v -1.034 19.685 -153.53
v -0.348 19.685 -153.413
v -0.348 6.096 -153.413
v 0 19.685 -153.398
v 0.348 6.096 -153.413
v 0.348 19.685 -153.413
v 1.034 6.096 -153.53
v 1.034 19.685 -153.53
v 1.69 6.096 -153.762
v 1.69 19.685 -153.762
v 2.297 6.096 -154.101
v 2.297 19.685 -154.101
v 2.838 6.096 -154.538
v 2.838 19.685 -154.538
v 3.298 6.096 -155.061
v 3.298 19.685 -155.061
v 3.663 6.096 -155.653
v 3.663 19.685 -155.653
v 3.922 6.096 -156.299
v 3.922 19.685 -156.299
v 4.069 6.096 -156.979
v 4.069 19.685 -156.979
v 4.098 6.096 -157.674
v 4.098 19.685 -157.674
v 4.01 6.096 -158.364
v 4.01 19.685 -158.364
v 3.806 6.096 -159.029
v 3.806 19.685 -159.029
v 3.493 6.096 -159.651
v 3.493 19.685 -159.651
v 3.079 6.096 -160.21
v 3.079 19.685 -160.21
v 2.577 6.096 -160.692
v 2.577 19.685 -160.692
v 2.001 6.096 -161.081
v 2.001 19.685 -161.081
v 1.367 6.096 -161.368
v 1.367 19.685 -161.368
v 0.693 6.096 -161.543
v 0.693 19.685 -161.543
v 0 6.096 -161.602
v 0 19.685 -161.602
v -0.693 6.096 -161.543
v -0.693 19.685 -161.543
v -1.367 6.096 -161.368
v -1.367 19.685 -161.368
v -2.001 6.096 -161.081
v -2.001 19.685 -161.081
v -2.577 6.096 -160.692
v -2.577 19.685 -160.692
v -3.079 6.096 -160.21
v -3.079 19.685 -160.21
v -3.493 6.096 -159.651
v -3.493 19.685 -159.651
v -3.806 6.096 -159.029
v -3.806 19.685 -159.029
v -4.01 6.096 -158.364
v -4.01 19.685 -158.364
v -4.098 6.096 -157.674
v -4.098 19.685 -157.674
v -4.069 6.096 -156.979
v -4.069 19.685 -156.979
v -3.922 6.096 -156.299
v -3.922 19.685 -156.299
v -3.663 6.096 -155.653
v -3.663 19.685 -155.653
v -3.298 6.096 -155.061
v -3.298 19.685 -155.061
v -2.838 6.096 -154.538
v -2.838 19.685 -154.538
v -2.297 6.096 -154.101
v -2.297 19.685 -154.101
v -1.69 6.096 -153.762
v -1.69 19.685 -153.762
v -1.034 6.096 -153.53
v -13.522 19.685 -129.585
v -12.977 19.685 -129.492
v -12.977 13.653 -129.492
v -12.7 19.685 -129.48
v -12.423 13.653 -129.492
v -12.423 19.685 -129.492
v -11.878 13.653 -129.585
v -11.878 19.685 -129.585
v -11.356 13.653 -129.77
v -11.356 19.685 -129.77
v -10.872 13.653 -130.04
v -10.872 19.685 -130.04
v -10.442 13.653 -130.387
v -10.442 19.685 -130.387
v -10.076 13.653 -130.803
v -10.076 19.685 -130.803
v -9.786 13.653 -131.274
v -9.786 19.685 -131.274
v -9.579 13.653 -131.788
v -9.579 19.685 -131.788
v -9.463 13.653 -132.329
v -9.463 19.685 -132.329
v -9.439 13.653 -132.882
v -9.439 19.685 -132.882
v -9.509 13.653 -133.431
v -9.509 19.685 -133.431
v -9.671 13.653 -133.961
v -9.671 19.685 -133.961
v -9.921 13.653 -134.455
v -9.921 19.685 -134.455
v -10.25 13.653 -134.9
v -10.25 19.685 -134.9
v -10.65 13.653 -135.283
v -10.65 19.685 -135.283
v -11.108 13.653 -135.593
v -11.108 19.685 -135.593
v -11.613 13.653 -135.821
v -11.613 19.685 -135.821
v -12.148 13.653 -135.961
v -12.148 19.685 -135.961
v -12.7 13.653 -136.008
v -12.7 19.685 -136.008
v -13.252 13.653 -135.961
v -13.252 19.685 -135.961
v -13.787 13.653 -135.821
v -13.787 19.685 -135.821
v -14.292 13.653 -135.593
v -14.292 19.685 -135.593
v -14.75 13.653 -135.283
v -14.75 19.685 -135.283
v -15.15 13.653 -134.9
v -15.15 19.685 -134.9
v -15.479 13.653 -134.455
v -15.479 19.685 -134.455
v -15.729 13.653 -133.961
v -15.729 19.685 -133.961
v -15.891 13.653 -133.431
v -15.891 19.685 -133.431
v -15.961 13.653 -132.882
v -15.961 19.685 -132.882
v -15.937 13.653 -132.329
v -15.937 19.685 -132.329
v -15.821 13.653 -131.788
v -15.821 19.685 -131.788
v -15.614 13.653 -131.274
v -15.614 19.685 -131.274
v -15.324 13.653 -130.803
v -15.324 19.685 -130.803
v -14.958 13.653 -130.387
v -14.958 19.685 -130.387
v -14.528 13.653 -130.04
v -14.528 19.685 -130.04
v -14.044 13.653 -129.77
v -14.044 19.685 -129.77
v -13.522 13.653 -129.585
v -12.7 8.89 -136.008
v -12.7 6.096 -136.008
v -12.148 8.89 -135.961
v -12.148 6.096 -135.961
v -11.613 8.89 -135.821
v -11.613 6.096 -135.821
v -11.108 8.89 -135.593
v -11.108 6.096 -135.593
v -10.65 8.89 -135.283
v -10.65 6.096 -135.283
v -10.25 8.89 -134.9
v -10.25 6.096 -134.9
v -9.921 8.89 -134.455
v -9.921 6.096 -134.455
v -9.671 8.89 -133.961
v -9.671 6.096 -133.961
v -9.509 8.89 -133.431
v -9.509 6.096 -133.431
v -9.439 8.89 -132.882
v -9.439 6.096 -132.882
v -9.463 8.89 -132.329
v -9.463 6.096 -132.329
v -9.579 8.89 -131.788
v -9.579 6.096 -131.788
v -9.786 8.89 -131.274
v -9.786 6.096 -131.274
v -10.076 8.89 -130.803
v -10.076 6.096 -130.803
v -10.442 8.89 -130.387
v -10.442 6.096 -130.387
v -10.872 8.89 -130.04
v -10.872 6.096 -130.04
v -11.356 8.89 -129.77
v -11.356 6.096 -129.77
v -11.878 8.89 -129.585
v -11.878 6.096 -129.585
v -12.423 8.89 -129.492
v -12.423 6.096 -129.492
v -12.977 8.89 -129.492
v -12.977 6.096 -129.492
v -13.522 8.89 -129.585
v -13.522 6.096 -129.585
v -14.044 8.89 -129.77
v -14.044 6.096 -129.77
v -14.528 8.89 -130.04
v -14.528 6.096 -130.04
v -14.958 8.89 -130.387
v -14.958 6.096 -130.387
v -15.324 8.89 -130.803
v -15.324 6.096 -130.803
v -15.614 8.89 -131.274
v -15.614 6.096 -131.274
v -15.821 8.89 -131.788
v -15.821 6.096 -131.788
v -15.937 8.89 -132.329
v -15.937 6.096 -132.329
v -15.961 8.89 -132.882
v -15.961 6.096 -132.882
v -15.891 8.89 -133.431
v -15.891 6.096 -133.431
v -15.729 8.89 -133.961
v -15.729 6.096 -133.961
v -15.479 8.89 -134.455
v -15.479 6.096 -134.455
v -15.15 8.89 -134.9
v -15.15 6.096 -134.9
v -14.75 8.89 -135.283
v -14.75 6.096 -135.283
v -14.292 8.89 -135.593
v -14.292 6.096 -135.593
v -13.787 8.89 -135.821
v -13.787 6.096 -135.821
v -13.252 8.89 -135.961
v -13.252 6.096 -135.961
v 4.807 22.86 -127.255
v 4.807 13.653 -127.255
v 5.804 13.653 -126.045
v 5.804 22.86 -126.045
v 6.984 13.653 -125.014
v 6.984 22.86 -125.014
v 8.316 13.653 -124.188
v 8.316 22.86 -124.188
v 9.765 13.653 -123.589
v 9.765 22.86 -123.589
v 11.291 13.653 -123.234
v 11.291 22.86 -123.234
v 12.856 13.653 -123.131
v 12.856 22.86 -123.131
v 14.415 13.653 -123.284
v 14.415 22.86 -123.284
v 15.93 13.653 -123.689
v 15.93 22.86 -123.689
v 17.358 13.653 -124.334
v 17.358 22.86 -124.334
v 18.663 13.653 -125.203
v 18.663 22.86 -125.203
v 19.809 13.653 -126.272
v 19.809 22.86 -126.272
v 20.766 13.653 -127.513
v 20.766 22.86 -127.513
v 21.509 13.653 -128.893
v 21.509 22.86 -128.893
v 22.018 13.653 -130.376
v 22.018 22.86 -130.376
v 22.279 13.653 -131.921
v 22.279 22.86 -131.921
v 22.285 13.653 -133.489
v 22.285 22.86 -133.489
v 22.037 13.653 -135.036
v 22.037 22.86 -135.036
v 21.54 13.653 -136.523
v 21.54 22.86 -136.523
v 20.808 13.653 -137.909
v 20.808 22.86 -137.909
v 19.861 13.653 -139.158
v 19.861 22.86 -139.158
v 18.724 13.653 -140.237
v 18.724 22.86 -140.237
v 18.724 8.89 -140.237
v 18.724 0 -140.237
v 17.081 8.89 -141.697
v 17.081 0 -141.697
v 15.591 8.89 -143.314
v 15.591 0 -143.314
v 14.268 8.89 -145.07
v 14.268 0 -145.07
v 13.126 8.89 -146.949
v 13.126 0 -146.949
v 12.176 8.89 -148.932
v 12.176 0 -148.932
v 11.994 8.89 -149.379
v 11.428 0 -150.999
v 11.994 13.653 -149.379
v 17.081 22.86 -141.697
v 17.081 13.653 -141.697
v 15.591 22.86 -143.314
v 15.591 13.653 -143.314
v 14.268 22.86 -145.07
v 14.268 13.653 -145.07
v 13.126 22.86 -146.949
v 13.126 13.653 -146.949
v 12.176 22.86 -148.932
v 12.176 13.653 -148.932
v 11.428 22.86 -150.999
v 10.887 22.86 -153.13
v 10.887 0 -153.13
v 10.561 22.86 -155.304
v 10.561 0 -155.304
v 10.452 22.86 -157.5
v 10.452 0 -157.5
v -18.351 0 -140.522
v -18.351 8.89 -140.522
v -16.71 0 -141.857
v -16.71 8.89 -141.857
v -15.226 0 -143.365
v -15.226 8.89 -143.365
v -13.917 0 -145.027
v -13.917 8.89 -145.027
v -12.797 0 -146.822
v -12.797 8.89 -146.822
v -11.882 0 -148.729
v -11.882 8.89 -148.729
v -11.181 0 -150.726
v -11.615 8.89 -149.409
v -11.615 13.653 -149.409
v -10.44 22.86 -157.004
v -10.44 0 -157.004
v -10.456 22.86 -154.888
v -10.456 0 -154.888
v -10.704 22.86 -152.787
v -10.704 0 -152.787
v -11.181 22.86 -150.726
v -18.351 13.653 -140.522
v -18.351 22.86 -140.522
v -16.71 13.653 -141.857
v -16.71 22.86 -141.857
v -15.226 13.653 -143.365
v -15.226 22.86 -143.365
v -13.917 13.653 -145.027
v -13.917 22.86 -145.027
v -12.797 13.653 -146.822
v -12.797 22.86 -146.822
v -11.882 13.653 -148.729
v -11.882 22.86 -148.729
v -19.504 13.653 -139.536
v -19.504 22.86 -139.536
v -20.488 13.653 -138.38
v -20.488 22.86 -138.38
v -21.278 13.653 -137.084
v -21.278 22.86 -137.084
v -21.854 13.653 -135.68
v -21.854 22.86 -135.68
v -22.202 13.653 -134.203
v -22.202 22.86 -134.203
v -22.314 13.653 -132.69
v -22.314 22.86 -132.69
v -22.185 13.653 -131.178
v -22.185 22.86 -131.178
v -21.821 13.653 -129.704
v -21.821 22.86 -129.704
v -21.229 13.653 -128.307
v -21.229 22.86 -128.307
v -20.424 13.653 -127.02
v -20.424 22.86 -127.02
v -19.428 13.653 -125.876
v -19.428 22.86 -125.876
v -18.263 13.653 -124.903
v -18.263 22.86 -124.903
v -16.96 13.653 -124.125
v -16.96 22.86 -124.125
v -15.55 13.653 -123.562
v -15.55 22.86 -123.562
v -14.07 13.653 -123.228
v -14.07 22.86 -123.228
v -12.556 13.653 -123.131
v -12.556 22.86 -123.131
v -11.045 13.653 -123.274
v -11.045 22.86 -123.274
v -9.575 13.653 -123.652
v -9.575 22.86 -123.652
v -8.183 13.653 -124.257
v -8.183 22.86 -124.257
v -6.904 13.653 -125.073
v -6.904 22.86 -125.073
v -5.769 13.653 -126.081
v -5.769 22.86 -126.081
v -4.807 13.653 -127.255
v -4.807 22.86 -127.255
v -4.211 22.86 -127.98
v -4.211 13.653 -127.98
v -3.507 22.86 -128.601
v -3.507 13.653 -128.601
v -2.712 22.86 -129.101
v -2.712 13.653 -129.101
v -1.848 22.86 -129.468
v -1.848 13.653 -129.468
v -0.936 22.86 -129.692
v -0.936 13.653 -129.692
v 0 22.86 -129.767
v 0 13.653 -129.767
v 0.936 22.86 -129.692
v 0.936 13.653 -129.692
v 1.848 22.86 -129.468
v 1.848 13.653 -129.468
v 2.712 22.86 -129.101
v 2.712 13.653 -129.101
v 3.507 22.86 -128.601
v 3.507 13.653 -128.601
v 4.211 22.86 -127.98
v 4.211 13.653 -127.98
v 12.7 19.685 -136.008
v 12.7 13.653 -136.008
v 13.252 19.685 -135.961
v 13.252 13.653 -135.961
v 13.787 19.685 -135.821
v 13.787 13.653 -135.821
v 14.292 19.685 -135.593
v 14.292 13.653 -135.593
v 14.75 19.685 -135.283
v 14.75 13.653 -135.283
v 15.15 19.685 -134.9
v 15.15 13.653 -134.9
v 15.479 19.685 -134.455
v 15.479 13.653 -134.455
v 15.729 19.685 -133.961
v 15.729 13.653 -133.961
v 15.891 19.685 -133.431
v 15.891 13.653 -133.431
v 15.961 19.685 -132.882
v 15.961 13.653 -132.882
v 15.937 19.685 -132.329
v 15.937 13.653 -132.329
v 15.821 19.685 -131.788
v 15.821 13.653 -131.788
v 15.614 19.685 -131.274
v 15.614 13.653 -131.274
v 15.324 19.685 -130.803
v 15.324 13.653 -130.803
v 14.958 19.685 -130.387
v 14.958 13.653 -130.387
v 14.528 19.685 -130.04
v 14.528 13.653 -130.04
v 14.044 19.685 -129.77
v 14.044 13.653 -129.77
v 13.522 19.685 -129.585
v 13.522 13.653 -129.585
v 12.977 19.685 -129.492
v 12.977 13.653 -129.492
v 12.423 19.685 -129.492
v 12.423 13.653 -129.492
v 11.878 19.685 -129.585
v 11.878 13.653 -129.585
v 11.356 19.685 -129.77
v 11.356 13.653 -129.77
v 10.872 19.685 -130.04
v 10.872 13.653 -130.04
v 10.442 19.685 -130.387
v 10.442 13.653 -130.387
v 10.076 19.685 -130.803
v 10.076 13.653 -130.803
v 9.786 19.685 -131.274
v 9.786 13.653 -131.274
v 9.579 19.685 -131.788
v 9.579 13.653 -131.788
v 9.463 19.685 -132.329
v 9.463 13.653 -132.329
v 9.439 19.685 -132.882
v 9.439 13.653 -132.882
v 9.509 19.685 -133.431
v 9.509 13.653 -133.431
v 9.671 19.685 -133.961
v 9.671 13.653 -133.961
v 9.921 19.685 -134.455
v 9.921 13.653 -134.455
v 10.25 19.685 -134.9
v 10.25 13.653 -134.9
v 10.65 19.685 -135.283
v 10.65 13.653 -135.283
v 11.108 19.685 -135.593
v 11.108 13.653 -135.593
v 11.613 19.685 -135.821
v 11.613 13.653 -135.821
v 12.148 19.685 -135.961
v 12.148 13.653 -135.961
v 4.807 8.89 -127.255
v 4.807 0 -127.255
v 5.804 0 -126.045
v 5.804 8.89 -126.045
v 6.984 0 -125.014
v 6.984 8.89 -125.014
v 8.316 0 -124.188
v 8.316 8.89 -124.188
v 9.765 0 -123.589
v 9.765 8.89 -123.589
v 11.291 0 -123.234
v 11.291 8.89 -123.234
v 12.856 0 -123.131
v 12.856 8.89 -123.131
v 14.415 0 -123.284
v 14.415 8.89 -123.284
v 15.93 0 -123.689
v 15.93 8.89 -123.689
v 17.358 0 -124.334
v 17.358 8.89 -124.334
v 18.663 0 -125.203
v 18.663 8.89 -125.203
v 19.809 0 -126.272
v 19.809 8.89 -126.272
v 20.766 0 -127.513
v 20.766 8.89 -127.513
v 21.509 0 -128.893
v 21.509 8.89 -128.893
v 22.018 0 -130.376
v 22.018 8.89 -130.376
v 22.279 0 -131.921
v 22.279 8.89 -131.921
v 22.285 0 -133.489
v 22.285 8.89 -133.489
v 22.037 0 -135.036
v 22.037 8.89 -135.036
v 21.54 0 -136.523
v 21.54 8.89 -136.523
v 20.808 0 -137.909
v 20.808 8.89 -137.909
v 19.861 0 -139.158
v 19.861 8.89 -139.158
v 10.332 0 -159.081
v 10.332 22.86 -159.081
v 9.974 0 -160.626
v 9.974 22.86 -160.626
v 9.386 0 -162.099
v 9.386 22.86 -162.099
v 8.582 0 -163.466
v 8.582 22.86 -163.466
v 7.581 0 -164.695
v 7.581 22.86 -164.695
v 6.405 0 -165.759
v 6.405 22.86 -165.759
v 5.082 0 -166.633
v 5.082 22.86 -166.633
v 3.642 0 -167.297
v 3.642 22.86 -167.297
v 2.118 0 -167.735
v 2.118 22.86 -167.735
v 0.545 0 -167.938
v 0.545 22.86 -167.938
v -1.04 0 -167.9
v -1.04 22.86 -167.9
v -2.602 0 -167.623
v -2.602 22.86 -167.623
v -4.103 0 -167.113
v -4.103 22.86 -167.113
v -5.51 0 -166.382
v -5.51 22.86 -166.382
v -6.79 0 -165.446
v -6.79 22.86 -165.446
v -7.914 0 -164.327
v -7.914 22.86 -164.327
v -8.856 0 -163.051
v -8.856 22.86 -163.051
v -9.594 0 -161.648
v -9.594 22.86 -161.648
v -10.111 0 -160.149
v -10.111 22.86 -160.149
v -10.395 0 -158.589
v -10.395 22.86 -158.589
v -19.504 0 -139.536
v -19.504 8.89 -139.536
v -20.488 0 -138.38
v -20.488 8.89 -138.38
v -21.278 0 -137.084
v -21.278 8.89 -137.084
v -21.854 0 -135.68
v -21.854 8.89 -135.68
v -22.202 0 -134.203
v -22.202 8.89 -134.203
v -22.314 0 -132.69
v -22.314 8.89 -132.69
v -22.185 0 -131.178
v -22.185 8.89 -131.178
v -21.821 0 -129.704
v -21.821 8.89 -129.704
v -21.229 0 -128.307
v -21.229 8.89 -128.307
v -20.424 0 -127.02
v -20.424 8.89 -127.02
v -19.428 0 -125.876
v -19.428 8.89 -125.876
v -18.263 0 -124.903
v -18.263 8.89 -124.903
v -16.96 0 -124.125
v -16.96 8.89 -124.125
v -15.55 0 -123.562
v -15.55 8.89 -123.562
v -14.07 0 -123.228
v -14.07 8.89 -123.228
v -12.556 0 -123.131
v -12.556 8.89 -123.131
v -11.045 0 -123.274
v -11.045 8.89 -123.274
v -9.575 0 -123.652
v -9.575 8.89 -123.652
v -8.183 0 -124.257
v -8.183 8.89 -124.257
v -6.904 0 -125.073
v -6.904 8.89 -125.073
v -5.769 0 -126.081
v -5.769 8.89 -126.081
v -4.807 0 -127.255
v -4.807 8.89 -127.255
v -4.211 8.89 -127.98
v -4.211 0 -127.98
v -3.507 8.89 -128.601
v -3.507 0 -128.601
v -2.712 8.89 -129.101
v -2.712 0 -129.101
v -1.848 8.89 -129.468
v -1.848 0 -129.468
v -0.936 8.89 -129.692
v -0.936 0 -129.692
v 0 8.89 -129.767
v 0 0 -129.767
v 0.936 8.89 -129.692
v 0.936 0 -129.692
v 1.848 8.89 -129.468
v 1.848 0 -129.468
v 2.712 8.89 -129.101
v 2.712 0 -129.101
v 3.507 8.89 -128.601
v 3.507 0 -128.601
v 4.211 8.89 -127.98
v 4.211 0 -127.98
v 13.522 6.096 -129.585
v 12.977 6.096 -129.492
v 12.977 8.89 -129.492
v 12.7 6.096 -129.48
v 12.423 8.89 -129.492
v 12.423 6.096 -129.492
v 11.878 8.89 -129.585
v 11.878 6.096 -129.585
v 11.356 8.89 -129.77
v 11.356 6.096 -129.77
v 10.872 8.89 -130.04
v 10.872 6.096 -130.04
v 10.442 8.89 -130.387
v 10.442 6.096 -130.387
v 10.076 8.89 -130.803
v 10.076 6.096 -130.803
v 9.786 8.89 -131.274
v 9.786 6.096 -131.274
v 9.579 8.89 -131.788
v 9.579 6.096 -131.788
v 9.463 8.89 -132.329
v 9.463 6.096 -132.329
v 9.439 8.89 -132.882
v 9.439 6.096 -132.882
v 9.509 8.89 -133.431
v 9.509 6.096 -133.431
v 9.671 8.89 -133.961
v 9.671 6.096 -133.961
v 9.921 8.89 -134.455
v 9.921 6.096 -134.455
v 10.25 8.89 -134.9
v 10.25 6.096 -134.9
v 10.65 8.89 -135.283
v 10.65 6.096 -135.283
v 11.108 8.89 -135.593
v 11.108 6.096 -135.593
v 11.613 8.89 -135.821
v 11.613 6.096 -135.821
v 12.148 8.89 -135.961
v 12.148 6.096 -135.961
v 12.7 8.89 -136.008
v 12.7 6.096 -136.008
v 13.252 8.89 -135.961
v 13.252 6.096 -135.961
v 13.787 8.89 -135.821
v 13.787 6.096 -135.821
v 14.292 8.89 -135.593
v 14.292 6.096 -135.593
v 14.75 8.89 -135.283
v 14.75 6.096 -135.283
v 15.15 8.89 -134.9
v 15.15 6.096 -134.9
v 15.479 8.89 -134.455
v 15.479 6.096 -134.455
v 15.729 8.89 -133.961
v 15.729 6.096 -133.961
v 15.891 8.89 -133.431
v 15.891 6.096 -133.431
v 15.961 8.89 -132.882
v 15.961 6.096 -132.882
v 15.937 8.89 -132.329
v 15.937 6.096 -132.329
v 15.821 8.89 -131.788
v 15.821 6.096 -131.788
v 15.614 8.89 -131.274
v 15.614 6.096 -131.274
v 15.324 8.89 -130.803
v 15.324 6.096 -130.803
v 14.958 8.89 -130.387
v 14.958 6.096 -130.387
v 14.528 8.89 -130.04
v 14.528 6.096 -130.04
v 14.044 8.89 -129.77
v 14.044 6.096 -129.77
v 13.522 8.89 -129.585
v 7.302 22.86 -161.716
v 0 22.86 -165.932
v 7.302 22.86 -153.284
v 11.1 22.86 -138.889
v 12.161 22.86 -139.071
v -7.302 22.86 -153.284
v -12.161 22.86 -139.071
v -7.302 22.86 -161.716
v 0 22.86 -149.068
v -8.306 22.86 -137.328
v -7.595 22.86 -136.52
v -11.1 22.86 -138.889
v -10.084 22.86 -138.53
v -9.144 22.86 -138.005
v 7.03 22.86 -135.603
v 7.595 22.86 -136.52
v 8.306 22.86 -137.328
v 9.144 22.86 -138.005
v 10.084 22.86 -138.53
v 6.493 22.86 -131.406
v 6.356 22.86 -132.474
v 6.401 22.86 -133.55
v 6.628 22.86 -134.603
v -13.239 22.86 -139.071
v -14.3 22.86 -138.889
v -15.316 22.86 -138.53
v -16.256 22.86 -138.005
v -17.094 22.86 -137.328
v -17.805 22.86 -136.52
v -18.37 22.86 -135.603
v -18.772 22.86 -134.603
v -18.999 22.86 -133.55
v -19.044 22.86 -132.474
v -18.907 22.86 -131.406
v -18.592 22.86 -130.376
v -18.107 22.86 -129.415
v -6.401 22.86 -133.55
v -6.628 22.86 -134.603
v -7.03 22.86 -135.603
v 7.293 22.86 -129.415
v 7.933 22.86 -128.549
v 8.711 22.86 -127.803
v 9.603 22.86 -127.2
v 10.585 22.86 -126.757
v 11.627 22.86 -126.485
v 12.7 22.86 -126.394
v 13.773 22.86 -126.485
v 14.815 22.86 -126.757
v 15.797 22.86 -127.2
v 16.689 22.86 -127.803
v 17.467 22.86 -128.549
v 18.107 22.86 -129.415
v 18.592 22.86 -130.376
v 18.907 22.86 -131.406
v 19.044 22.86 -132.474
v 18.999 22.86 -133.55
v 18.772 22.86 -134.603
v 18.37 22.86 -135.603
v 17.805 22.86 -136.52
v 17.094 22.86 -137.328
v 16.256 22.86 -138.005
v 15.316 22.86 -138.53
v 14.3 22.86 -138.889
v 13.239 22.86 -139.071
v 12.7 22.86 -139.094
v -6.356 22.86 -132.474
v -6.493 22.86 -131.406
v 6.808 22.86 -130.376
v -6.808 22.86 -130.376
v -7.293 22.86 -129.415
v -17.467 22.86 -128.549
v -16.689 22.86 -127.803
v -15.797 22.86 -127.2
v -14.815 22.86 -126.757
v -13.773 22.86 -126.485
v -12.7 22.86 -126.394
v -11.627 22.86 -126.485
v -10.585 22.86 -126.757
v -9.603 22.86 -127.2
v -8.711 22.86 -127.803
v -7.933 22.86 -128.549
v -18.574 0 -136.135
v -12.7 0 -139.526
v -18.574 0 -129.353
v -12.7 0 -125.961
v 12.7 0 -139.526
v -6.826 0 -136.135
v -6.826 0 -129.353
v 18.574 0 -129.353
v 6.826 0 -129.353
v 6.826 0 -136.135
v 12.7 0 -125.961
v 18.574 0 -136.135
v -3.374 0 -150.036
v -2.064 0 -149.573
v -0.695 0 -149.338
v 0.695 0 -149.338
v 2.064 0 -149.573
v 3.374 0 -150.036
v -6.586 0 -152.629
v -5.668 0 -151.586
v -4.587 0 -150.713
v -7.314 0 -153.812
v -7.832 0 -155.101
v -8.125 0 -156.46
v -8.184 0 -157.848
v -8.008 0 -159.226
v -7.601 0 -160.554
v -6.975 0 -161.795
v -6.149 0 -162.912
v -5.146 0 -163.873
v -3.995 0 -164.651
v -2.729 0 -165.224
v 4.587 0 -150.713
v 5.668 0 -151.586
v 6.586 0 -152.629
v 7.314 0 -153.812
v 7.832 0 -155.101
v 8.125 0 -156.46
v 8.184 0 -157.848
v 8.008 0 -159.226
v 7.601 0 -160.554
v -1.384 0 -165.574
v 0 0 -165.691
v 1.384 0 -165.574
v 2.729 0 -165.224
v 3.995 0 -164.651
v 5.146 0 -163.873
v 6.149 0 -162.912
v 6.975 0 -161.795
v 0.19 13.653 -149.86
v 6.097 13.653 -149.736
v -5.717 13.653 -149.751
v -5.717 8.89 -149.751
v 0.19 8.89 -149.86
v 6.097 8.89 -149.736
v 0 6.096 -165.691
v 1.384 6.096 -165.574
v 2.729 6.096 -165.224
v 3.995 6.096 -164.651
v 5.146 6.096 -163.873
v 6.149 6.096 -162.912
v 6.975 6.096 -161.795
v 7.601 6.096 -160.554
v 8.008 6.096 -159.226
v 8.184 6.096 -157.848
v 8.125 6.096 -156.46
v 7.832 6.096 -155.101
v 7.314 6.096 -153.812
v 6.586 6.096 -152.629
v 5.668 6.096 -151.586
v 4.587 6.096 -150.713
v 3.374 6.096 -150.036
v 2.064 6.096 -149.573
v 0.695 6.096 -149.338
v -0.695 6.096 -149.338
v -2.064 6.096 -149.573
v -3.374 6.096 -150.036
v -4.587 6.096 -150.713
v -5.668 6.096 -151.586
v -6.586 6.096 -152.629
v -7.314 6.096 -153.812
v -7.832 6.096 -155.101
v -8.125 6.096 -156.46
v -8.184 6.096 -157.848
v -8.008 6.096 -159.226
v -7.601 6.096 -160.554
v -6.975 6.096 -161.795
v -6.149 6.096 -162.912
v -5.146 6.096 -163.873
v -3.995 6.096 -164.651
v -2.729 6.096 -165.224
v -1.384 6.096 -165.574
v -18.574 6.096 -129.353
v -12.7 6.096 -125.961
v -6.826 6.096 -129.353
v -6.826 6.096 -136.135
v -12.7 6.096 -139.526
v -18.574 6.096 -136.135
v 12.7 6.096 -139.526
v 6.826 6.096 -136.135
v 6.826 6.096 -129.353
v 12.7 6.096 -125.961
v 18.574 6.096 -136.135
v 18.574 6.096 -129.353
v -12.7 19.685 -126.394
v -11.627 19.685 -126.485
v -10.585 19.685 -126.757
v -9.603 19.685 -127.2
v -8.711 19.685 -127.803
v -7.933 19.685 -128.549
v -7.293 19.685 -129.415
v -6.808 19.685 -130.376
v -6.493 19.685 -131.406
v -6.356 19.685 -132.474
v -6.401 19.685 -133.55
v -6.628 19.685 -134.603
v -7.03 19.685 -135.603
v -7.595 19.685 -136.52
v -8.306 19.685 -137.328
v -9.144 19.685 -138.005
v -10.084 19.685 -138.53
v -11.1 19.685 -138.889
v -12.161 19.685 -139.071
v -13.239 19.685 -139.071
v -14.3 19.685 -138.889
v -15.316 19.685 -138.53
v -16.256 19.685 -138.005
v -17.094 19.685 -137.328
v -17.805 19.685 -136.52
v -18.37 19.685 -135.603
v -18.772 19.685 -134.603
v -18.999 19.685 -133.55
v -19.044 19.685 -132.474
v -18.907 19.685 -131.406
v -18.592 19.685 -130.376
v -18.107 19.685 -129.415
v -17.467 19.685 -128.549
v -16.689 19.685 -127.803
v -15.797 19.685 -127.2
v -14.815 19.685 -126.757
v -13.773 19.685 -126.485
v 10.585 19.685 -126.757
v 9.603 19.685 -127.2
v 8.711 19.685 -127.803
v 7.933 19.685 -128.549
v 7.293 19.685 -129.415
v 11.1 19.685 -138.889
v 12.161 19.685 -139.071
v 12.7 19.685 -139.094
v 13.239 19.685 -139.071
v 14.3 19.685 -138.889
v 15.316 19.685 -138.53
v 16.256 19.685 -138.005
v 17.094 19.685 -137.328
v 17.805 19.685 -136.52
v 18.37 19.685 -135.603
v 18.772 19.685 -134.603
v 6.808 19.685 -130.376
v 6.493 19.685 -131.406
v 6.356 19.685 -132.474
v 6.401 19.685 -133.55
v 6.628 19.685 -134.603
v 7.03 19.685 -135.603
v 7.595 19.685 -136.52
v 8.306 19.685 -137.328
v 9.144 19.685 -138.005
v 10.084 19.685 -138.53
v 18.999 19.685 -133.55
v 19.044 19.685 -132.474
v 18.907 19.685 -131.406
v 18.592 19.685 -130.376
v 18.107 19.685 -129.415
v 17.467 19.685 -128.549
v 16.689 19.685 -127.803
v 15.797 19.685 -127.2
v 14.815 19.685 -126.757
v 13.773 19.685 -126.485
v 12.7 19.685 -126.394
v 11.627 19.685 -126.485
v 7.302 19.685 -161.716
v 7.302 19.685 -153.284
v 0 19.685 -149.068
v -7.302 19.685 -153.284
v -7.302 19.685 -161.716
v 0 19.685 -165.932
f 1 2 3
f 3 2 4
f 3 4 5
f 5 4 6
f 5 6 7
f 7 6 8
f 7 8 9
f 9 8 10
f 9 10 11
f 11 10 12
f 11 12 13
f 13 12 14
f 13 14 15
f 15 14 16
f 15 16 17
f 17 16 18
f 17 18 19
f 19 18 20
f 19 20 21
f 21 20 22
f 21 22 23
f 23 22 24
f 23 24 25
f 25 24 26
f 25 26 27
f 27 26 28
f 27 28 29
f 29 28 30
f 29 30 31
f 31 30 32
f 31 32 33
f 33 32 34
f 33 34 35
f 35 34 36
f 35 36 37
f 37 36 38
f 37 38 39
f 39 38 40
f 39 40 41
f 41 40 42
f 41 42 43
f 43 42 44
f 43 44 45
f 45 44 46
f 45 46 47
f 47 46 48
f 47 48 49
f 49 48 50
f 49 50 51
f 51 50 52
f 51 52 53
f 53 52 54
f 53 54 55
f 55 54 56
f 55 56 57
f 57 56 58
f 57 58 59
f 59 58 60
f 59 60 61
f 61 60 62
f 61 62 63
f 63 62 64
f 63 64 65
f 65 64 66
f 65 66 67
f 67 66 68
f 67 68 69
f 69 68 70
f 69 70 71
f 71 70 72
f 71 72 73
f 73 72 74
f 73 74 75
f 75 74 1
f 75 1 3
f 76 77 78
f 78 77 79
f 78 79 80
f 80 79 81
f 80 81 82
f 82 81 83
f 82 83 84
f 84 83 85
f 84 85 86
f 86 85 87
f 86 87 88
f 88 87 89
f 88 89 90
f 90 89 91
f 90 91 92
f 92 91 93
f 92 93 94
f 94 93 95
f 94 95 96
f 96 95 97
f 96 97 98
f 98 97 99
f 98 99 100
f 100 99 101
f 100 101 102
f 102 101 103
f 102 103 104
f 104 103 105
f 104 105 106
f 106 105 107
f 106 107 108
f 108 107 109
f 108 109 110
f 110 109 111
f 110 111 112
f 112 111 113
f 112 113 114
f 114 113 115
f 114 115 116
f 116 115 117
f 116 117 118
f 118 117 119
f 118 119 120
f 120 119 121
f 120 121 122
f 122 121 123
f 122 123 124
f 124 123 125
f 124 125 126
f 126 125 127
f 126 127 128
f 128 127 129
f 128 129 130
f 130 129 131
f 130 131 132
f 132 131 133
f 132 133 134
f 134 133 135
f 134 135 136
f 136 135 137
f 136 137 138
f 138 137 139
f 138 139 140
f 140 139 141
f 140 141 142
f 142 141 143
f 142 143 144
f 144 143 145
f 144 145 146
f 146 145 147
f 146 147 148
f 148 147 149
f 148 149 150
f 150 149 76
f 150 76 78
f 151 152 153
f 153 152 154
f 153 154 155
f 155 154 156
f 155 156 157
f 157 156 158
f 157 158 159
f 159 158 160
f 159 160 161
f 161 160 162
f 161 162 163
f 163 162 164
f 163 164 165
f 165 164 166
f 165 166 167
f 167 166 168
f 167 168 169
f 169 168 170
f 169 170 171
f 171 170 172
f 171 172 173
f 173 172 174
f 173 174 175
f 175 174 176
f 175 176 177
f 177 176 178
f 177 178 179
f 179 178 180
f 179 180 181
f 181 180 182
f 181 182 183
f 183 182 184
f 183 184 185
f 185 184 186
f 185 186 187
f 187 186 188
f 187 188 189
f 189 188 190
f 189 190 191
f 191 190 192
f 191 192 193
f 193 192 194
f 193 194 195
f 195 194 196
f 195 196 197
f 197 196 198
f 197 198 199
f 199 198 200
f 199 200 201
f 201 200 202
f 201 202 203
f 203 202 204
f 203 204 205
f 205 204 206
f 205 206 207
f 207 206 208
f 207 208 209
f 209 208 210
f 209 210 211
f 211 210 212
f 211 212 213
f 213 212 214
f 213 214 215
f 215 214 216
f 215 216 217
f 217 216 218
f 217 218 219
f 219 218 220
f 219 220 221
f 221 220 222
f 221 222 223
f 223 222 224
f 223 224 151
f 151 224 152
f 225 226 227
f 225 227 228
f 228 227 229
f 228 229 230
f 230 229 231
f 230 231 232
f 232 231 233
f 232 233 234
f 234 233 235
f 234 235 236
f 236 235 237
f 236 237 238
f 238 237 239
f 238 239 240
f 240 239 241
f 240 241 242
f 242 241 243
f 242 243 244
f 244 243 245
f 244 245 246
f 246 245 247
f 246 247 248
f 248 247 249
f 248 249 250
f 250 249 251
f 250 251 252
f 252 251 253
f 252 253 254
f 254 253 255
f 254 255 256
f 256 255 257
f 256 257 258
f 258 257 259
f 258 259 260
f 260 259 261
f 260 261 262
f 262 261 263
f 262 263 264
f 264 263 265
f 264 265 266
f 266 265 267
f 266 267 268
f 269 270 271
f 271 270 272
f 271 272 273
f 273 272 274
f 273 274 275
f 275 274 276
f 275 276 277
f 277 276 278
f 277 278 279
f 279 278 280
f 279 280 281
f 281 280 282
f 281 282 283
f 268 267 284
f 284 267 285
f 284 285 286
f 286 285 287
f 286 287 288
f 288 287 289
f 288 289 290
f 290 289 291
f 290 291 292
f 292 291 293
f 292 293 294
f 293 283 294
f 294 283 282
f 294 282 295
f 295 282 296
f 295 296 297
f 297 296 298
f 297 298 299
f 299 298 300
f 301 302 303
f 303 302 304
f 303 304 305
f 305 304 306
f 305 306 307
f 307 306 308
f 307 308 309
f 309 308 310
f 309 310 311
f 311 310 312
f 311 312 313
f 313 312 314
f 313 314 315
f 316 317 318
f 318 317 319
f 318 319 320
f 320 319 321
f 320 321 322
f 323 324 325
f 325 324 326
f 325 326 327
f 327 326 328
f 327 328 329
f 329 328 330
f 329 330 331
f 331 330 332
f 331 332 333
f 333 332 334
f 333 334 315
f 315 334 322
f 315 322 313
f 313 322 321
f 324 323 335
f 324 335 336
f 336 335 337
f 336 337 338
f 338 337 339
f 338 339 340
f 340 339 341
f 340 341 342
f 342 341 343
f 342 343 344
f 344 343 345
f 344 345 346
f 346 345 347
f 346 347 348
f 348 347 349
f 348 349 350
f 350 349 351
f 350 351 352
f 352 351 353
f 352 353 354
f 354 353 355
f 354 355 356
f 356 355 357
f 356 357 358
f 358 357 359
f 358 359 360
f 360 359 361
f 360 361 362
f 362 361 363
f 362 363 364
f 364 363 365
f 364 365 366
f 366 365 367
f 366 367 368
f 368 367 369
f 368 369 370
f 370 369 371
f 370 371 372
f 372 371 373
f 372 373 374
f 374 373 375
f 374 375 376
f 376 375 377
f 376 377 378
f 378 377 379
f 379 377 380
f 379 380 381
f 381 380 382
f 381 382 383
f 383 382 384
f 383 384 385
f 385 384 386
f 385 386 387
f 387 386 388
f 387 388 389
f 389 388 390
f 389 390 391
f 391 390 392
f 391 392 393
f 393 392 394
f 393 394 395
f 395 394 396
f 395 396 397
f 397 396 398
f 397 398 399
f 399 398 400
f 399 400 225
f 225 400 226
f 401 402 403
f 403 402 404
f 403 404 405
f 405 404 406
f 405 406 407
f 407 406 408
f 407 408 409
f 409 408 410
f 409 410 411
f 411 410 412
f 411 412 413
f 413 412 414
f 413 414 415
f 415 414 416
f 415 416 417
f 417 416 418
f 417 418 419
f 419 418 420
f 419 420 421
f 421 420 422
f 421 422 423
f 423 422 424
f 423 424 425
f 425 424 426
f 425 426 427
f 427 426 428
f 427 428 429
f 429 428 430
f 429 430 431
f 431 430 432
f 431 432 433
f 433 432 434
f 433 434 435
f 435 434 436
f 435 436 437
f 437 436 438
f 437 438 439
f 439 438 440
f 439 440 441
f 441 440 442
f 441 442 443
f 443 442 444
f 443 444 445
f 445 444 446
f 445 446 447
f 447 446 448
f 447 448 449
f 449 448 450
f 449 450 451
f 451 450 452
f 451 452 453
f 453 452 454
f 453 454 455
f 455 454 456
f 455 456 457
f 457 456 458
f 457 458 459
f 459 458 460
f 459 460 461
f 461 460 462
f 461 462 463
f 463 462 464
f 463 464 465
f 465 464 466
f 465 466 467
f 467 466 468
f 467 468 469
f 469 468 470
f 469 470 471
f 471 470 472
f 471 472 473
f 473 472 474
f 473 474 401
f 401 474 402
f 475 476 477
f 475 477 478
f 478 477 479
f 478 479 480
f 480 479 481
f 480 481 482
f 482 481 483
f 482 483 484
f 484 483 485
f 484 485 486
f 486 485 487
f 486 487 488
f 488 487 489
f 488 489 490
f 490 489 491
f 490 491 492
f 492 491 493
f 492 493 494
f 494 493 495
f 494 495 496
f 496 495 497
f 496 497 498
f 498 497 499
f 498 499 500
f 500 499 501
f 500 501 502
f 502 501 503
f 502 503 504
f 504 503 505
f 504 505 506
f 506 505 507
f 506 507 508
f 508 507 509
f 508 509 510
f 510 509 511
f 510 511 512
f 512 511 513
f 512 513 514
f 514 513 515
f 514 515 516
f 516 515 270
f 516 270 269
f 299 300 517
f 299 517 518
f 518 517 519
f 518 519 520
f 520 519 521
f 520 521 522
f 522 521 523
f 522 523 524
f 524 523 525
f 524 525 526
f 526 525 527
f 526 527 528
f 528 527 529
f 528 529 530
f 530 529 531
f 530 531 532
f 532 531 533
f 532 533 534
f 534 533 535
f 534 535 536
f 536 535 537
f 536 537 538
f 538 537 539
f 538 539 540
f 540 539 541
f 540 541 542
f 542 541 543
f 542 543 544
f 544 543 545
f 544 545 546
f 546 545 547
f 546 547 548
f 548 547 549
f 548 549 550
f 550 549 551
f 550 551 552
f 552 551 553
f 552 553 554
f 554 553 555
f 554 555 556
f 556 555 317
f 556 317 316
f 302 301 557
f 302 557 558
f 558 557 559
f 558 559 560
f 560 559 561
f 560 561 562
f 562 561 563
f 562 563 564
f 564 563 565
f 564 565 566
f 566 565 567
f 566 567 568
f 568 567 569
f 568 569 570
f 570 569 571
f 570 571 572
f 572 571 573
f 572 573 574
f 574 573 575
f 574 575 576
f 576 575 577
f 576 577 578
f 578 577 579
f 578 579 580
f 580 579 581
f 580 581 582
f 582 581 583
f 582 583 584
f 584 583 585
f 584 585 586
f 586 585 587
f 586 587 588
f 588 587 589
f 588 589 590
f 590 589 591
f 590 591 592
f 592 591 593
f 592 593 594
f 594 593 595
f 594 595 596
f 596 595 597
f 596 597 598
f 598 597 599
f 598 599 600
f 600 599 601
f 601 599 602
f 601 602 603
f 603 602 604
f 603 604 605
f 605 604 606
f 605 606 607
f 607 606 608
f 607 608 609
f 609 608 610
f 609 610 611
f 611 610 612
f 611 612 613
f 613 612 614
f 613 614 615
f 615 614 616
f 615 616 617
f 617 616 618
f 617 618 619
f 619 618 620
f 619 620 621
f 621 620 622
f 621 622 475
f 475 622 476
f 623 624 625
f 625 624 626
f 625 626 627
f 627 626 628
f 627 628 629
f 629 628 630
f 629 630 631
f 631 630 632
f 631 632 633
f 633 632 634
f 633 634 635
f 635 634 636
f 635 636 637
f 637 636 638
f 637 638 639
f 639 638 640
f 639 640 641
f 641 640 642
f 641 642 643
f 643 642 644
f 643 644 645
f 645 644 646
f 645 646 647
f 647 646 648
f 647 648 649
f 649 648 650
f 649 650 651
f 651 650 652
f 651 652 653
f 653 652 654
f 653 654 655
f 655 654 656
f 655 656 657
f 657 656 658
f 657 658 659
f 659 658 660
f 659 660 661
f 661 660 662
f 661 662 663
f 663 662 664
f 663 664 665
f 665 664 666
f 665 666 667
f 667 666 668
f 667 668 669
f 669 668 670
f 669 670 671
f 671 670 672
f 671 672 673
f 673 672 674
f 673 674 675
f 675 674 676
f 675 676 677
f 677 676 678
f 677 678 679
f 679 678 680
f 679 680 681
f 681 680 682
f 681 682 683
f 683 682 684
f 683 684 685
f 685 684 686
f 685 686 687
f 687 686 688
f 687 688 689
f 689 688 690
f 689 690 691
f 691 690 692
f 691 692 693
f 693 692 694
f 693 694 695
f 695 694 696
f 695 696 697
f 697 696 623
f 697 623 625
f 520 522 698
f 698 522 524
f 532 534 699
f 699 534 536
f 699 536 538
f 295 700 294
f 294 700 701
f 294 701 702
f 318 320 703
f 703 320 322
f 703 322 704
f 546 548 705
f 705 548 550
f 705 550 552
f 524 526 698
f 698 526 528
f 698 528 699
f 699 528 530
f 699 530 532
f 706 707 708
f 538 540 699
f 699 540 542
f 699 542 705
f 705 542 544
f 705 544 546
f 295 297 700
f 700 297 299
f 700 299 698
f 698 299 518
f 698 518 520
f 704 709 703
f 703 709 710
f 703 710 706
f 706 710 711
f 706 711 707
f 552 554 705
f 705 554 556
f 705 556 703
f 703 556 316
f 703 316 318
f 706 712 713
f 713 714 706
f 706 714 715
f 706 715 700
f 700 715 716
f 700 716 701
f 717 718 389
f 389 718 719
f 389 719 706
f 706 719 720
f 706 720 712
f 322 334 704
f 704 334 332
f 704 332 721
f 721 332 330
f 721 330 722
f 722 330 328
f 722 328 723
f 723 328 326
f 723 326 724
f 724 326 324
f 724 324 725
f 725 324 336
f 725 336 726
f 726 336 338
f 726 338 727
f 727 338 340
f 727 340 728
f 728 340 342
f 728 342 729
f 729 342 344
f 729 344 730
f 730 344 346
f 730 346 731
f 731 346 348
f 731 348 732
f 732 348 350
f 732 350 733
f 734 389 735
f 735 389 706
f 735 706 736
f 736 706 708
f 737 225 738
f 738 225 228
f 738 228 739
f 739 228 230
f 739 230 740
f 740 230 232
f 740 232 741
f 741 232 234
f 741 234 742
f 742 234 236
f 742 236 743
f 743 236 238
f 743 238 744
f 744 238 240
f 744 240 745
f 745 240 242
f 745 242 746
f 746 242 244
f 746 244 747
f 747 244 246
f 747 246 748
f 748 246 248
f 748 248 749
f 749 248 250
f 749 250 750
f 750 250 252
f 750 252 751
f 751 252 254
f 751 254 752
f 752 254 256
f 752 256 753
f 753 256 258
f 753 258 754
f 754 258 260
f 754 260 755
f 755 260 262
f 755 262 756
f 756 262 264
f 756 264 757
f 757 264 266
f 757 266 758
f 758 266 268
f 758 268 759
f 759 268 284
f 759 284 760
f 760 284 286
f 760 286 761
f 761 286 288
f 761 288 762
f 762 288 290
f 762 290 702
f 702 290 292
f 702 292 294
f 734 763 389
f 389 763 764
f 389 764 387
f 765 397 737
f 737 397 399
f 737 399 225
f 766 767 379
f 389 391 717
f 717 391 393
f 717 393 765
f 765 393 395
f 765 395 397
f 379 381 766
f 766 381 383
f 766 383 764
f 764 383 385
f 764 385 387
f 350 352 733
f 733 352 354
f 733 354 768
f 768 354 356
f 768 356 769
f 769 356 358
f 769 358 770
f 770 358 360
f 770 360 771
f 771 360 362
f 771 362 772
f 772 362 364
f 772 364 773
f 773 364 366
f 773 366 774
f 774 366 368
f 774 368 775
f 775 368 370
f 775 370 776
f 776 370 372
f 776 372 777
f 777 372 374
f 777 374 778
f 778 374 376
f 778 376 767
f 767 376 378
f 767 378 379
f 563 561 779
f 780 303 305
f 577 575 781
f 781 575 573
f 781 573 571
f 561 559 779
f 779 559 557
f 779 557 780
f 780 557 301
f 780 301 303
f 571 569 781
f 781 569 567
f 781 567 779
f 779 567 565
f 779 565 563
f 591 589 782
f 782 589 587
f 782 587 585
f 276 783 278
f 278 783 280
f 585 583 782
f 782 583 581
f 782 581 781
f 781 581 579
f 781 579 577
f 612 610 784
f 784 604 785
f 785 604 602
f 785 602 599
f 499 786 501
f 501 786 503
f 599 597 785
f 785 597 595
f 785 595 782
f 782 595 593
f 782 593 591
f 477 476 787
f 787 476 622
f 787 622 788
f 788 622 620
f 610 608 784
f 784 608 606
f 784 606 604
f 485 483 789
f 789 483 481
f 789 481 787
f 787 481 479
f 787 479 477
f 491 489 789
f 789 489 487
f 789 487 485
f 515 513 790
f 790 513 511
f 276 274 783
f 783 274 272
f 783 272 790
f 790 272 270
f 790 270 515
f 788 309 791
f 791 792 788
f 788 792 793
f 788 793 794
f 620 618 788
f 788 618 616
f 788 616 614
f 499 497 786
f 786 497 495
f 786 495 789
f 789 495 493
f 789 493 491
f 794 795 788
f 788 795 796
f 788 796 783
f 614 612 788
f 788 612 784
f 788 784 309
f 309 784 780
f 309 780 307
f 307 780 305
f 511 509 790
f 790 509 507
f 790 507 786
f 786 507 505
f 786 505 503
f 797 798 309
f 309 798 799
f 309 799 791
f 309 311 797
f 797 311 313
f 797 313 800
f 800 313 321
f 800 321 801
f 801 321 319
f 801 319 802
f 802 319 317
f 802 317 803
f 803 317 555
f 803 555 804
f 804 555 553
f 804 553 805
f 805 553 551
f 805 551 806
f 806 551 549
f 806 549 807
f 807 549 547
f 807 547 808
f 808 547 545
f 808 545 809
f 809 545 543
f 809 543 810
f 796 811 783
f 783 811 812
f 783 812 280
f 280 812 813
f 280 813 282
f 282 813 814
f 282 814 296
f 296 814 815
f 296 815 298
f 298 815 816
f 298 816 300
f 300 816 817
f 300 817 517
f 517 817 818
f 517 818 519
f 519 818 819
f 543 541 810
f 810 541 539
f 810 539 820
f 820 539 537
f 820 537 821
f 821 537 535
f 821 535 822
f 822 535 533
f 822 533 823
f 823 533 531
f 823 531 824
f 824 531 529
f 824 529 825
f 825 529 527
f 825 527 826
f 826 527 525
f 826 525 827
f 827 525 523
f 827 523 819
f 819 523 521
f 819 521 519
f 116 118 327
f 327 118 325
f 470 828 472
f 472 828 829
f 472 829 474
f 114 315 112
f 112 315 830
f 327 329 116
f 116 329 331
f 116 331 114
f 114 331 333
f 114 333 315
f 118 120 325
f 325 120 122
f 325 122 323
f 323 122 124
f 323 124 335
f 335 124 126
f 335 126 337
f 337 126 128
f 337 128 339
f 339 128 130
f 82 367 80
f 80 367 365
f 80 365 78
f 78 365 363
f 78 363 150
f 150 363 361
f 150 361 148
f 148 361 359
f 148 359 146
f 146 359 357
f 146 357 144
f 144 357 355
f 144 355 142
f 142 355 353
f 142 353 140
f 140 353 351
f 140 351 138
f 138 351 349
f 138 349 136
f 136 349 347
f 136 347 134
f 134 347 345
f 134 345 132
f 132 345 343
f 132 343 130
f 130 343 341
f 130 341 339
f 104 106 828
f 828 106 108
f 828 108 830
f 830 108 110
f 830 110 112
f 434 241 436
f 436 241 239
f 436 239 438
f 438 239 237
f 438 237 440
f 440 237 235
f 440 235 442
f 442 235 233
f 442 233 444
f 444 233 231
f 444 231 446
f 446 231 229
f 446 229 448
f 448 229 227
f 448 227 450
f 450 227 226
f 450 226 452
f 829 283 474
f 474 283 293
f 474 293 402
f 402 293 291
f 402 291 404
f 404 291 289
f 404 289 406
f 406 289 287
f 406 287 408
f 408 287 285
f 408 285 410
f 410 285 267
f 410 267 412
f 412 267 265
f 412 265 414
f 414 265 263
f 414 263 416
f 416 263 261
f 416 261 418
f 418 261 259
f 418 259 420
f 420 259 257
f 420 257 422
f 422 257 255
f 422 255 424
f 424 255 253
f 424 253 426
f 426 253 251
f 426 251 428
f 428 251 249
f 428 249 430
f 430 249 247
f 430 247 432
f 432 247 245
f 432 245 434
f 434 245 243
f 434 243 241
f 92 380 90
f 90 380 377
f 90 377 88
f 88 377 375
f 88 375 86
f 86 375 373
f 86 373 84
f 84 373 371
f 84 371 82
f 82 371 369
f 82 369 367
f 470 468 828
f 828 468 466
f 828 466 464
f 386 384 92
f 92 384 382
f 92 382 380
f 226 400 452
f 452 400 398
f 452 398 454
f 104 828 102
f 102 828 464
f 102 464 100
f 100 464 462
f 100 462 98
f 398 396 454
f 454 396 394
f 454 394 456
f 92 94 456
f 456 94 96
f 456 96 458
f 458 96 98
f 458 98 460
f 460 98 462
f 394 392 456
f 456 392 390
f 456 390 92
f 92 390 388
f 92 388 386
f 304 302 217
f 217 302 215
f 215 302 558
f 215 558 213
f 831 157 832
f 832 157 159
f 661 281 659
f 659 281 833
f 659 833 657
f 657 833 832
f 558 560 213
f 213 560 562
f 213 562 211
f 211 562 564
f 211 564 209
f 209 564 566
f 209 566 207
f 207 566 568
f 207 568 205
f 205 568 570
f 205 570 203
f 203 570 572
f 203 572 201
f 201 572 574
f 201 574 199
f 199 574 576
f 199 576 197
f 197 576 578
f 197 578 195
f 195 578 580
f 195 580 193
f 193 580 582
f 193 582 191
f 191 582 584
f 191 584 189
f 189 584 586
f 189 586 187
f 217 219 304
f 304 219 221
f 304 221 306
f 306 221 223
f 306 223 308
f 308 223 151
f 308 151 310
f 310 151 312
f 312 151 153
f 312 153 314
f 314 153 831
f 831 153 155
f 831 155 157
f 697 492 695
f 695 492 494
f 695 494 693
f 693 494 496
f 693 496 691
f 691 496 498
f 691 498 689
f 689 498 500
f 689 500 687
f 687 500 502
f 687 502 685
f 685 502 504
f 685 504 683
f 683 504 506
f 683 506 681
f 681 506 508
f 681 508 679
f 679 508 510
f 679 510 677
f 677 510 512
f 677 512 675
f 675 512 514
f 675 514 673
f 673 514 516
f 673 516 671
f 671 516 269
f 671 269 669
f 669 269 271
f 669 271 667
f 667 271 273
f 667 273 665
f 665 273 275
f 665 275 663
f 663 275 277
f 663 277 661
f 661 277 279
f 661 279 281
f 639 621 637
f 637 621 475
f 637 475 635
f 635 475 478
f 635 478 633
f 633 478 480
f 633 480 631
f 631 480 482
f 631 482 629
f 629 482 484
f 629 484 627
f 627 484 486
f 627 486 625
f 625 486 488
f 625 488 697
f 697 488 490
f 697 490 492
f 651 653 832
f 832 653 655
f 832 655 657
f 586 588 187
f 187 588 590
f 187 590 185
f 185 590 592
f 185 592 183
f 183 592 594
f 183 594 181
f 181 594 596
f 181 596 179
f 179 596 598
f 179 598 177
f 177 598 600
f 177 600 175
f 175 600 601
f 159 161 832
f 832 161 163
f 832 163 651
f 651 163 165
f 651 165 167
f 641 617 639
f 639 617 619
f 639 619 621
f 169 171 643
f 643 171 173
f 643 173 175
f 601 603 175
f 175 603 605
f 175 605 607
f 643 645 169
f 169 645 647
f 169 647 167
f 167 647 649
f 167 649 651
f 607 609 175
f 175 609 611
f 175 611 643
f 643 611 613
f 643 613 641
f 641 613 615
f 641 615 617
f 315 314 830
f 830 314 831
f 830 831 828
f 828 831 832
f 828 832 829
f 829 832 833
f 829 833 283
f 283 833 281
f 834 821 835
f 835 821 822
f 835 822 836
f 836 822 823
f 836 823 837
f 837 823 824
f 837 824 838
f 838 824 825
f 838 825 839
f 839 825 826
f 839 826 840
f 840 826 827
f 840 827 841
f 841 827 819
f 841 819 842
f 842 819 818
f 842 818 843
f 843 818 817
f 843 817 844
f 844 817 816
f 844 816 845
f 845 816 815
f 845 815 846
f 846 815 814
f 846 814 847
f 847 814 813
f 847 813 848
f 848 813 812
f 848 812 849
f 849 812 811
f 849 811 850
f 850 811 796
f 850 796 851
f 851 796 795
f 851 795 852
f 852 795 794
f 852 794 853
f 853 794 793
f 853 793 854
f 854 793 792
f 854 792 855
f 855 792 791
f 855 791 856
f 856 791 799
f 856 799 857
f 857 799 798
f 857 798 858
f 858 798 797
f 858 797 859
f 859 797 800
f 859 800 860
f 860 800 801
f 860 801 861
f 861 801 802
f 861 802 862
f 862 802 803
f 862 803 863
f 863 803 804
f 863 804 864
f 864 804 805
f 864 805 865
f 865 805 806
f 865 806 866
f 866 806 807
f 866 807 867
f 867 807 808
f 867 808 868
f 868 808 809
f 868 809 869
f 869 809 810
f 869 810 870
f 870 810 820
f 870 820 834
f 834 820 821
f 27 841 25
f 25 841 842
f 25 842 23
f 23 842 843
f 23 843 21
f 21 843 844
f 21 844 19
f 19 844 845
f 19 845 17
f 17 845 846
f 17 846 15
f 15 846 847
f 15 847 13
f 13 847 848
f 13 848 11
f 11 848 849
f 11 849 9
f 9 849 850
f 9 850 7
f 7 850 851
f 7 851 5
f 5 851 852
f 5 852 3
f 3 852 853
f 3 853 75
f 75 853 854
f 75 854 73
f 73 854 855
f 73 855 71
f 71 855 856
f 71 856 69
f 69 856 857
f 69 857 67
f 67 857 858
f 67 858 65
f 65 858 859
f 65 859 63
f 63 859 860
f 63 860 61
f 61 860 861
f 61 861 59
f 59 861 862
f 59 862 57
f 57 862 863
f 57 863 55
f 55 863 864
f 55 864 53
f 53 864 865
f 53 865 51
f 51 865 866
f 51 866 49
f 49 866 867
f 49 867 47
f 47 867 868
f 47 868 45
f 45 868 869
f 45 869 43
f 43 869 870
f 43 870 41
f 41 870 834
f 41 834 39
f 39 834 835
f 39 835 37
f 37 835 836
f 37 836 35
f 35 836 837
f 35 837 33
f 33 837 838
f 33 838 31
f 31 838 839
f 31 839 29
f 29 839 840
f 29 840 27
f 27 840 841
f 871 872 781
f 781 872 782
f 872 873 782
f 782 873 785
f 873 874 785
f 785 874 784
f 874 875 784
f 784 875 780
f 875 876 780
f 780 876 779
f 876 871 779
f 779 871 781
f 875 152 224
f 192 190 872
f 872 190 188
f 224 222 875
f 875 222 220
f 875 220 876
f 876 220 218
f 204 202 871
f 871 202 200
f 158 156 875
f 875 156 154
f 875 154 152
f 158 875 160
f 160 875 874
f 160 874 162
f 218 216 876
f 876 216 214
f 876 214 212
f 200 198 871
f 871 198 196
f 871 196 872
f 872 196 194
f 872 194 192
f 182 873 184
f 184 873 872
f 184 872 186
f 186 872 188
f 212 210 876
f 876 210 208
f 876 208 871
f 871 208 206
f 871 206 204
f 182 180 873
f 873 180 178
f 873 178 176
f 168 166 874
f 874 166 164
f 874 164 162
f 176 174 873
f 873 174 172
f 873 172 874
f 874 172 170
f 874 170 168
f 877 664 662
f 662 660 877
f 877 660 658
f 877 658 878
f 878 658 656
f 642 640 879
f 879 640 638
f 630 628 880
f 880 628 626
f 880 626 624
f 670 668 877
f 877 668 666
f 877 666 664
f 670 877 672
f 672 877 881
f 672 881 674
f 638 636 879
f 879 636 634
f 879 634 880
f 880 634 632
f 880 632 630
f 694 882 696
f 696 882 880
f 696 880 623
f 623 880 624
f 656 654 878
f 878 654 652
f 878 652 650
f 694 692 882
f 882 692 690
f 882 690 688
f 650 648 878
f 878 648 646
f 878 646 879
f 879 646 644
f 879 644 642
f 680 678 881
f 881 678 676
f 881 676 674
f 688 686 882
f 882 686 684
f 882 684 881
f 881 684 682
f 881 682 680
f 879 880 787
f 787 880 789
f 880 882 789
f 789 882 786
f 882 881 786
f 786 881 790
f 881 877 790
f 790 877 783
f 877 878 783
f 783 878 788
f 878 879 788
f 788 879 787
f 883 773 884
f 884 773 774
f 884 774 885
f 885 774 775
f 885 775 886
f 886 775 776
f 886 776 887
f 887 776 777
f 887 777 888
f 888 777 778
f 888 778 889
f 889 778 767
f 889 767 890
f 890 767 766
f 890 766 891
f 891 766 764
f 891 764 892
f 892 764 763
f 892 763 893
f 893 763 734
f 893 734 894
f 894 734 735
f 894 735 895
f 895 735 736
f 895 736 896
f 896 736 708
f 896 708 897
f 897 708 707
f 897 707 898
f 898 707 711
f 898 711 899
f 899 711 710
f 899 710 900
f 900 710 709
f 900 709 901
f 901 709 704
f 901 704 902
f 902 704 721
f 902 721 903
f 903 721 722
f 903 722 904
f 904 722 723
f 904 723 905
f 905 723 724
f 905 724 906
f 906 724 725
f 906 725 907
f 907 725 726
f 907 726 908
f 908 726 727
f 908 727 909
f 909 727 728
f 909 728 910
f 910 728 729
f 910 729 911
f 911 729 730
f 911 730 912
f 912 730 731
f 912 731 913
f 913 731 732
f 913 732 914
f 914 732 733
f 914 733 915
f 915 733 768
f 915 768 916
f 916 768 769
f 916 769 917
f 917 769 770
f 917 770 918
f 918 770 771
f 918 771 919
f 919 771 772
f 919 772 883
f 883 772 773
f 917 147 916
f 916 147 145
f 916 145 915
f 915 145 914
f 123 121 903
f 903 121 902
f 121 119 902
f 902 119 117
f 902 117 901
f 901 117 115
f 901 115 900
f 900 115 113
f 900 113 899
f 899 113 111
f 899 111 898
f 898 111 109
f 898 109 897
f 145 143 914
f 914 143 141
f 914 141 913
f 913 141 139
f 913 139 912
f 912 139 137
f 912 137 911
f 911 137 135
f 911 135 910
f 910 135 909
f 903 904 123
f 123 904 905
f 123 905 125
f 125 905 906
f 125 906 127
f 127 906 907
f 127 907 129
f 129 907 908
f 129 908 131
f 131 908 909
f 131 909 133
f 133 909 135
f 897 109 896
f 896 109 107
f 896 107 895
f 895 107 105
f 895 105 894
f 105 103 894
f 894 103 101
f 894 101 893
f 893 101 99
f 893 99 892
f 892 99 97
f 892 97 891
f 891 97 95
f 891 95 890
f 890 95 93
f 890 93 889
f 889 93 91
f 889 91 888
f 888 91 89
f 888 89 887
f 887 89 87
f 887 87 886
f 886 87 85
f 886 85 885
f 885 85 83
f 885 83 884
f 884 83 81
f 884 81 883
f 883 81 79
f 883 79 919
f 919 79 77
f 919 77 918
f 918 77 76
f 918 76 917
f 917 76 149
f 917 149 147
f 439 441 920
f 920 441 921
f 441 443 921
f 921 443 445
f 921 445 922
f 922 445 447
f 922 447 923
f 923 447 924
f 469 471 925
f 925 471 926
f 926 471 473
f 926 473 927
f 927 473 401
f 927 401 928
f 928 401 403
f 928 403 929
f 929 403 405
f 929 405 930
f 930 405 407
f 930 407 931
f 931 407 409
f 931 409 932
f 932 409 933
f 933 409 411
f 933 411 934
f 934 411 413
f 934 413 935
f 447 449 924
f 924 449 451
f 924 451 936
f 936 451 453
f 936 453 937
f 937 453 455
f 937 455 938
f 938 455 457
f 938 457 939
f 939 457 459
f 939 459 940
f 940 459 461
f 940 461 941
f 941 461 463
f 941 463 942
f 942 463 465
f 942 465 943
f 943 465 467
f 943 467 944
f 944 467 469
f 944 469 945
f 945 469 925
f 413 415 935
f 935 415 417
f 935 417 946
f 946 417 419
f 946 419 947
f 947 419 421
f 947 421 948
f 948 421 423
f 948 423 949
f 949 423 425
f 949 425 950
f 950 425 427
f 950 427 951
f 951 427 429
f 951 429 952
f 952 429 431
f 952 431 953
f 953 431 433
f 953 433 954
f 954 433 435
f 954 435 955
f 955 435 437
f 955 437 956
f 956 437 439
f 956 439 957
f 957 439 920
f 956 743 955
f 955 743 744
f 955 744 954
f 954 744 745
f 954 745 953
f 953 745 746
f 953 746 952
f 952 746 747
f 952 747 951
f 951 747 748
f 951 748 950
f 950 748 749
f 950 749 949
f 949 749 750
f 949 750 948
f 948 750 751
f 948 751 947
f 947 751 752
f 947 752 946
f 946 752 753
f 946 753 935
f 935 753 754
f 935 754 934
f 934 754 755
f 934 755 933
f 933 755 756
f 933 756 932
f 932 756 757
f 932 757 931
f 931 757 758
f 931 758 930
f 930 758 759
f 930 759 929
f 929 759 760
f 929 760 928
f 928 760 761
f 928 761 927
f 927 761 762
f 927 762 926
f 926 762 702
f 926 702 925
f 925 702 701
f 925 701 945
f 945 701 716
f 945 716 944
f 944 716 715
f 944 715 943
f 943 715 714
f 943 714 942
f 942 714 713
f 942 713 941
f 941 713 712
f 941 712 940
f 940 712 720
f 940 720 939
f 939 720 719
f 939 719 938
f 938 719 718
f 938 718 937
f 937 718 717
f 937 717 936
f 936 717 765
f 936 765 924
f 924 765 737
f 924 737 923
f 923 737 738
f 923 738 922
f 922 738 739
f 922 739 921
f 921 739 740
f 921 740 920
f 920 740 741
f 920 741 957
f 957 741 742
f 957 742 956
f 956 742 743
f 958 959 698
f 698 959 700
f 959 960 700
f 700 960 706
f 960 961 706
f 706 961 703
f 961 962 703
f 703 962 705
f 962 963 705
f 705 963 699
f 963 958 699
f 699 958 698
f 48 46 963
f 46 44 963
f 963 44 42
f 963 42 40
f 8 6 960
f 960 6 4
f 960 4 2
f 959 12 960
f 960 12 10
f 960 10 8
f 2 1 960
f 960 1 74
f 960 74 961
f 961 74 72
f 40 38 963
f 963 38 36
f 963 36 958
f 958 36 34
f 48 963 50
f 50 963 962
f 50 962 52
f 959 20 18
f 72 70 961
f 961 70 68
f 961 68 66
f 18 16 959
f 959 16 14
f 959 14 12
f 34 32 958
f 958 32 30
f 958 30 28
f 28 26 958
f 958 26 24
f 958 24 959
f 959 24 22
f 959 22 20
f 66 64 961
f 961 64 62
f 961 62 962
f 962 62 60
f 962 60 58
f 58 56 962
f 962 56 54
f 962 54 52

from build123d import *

# Parameters (mm, degrees)
SKETCH1_R           = 3.2639
SKETCH1_R_2         = 4.1021
BOSS_EXTRUDE1_DEPTH = 22.86
CUT_EXTRUDE1_DEPTH  = 4.7625
SKETCH3_R           = 8.1915
BOTTOM_CUTS_DEPTH   = 6.096
SKETCH4_R           = 6.35
TOP_CUTS_DEPTH      = 3.175


with BuildPart() as part:
    # Sketch1 → Boss-Extrude1 (new body)
    with BuildSketch(Plane(origin=(0, 0, 0), x_dir=(1, 0, 0), z_dir=(0, 1, 0))):
        with BuildLine():
            ThreePointArc((-10.440306098, 157.003610008), (-12.313301142, 147.763224627), (-18.350908637, 140.521668981))
            ThreePointArc((-18.350908637, 140.521668981), (-19.427506678, 125.875984036), (-4.807172888, 127.254748239))
            ThreePointArc((-4.807172888, 127.254748239), (0, 129.766974532), (4.807172888, 127.254748239))
            ThreePointArc((4.807172888, 127.254748239), (19.257850316, 125.71380556), (18.723788674, 140.236593192))
            ThreePointArc((18.723788674, 140.236593192), (12.626773217, 147.928609691), (10.4521, 157.49999996))
            ThreePointArc((10.4521, 157.49999996), (-0.24826502, 167.949151069), (-10.440306098, 157.003610008))
        make_face()
        with Locations((-12.7, 132.743860498)):
            Circle(SKETCH1_R, mode=Mode.SUBTRACT)
        with Locations((12.7, 132.743860498)):
            Circle(SKETCH1_R, mode=Mode.SUBTRACT)
        with Locations((0, 157.49999996)):
            Circle(SKETCH1_R_2, mode=Mode.SUBTRACT)
    extrude(amount=BOSS_EXTRUDE1_DEPTH)

    # Sketch2 → Cut-Extrude1 (cut)
    with BuildSketch(Plane(origin=(0, 8.89, 0), x_dir=(-1, 0, 0), z_dir=(0, -1, 0))):
        with BuildLine():
            ThreePointArc((-18.723788674, 140.236593192), (-19.257850316, 125.71380556), (-4.807172888, 127.254748239))
            ThreePointArc((-4.807172888, 127.254748239), (0, 129.766974532), (4.807172888, 127.254748239))
            ThreePointArc((4.807172888, 127.254748239), (19.427506678, 125.875984036), (18.350908637, 140.521668981))
            ThreePointArc((18.350908637, 140.521668981), (14.325271112, 144.466825655), (11.615435011, 149.40917398))
            ThreePointArc((11.615435011, 149.40917398), (-0.19007082, 149.859879464), (-11.994395391, 149.379229076))
            ThreePointArc((-11.994395391, 149.379229076), (-14.763447186, 144.369489602), (-18.723788674, 140.236593192))
        make_face()
    extrude(amount=-CUT_EXTRUDE1_DEPTH, mode=Mode.SUBTRACT)

    # Sketch3 → bottom-cuts (cut)
    with BuildSketch(Plane.XZ):
        with Locations((0, -157.49999996)):
            Circle(SKETCH3_R)
        Polygon((-18.57375, -129.352649355), (-18.57375, -136.135071642), (-12.7, -139.526282786), (-6.82625, -136.135071642), (-6.82625, -129.352649355), (-12.7, -125.961438211), align=None)
        Polygon((12.7, -125.961438211), (18.57375, -129.352649355), (18.57375, -136.135071642), (12.7, -139.526282786), (6.82625, -136.135071642), (6.82625, -129.352649355), align=None)
    extrude(amount=-BOTTOM_CUTS_DEPTH, mode=Mode.SUBTRACT)

    # Sketch4 → top-cuts (cut)
    with BuildSketch(Plane(origin=(0, 22.86, 0), x_dir=(1, 0, 0), z_dir=(0, 1, 0))):
        with Locations((-12.7, 132.743860498)):
            Circle(SKETCH4_R)
        with Locations((12.7, 132.743860498)):
            Circle(SKETCH4_R)
        Polygon((7.3025, 161.716100301), (0, 165.932200642), (-7.3025, 161.716100301), (-7.3025, 153.283899619), (0, 149.067799278), (7.3025, 153.283899619), align=None)
    extrude(amount=-TOP_CUTS_DEPTH, mode=Mode.SUBTRACT)


solid = part.part
